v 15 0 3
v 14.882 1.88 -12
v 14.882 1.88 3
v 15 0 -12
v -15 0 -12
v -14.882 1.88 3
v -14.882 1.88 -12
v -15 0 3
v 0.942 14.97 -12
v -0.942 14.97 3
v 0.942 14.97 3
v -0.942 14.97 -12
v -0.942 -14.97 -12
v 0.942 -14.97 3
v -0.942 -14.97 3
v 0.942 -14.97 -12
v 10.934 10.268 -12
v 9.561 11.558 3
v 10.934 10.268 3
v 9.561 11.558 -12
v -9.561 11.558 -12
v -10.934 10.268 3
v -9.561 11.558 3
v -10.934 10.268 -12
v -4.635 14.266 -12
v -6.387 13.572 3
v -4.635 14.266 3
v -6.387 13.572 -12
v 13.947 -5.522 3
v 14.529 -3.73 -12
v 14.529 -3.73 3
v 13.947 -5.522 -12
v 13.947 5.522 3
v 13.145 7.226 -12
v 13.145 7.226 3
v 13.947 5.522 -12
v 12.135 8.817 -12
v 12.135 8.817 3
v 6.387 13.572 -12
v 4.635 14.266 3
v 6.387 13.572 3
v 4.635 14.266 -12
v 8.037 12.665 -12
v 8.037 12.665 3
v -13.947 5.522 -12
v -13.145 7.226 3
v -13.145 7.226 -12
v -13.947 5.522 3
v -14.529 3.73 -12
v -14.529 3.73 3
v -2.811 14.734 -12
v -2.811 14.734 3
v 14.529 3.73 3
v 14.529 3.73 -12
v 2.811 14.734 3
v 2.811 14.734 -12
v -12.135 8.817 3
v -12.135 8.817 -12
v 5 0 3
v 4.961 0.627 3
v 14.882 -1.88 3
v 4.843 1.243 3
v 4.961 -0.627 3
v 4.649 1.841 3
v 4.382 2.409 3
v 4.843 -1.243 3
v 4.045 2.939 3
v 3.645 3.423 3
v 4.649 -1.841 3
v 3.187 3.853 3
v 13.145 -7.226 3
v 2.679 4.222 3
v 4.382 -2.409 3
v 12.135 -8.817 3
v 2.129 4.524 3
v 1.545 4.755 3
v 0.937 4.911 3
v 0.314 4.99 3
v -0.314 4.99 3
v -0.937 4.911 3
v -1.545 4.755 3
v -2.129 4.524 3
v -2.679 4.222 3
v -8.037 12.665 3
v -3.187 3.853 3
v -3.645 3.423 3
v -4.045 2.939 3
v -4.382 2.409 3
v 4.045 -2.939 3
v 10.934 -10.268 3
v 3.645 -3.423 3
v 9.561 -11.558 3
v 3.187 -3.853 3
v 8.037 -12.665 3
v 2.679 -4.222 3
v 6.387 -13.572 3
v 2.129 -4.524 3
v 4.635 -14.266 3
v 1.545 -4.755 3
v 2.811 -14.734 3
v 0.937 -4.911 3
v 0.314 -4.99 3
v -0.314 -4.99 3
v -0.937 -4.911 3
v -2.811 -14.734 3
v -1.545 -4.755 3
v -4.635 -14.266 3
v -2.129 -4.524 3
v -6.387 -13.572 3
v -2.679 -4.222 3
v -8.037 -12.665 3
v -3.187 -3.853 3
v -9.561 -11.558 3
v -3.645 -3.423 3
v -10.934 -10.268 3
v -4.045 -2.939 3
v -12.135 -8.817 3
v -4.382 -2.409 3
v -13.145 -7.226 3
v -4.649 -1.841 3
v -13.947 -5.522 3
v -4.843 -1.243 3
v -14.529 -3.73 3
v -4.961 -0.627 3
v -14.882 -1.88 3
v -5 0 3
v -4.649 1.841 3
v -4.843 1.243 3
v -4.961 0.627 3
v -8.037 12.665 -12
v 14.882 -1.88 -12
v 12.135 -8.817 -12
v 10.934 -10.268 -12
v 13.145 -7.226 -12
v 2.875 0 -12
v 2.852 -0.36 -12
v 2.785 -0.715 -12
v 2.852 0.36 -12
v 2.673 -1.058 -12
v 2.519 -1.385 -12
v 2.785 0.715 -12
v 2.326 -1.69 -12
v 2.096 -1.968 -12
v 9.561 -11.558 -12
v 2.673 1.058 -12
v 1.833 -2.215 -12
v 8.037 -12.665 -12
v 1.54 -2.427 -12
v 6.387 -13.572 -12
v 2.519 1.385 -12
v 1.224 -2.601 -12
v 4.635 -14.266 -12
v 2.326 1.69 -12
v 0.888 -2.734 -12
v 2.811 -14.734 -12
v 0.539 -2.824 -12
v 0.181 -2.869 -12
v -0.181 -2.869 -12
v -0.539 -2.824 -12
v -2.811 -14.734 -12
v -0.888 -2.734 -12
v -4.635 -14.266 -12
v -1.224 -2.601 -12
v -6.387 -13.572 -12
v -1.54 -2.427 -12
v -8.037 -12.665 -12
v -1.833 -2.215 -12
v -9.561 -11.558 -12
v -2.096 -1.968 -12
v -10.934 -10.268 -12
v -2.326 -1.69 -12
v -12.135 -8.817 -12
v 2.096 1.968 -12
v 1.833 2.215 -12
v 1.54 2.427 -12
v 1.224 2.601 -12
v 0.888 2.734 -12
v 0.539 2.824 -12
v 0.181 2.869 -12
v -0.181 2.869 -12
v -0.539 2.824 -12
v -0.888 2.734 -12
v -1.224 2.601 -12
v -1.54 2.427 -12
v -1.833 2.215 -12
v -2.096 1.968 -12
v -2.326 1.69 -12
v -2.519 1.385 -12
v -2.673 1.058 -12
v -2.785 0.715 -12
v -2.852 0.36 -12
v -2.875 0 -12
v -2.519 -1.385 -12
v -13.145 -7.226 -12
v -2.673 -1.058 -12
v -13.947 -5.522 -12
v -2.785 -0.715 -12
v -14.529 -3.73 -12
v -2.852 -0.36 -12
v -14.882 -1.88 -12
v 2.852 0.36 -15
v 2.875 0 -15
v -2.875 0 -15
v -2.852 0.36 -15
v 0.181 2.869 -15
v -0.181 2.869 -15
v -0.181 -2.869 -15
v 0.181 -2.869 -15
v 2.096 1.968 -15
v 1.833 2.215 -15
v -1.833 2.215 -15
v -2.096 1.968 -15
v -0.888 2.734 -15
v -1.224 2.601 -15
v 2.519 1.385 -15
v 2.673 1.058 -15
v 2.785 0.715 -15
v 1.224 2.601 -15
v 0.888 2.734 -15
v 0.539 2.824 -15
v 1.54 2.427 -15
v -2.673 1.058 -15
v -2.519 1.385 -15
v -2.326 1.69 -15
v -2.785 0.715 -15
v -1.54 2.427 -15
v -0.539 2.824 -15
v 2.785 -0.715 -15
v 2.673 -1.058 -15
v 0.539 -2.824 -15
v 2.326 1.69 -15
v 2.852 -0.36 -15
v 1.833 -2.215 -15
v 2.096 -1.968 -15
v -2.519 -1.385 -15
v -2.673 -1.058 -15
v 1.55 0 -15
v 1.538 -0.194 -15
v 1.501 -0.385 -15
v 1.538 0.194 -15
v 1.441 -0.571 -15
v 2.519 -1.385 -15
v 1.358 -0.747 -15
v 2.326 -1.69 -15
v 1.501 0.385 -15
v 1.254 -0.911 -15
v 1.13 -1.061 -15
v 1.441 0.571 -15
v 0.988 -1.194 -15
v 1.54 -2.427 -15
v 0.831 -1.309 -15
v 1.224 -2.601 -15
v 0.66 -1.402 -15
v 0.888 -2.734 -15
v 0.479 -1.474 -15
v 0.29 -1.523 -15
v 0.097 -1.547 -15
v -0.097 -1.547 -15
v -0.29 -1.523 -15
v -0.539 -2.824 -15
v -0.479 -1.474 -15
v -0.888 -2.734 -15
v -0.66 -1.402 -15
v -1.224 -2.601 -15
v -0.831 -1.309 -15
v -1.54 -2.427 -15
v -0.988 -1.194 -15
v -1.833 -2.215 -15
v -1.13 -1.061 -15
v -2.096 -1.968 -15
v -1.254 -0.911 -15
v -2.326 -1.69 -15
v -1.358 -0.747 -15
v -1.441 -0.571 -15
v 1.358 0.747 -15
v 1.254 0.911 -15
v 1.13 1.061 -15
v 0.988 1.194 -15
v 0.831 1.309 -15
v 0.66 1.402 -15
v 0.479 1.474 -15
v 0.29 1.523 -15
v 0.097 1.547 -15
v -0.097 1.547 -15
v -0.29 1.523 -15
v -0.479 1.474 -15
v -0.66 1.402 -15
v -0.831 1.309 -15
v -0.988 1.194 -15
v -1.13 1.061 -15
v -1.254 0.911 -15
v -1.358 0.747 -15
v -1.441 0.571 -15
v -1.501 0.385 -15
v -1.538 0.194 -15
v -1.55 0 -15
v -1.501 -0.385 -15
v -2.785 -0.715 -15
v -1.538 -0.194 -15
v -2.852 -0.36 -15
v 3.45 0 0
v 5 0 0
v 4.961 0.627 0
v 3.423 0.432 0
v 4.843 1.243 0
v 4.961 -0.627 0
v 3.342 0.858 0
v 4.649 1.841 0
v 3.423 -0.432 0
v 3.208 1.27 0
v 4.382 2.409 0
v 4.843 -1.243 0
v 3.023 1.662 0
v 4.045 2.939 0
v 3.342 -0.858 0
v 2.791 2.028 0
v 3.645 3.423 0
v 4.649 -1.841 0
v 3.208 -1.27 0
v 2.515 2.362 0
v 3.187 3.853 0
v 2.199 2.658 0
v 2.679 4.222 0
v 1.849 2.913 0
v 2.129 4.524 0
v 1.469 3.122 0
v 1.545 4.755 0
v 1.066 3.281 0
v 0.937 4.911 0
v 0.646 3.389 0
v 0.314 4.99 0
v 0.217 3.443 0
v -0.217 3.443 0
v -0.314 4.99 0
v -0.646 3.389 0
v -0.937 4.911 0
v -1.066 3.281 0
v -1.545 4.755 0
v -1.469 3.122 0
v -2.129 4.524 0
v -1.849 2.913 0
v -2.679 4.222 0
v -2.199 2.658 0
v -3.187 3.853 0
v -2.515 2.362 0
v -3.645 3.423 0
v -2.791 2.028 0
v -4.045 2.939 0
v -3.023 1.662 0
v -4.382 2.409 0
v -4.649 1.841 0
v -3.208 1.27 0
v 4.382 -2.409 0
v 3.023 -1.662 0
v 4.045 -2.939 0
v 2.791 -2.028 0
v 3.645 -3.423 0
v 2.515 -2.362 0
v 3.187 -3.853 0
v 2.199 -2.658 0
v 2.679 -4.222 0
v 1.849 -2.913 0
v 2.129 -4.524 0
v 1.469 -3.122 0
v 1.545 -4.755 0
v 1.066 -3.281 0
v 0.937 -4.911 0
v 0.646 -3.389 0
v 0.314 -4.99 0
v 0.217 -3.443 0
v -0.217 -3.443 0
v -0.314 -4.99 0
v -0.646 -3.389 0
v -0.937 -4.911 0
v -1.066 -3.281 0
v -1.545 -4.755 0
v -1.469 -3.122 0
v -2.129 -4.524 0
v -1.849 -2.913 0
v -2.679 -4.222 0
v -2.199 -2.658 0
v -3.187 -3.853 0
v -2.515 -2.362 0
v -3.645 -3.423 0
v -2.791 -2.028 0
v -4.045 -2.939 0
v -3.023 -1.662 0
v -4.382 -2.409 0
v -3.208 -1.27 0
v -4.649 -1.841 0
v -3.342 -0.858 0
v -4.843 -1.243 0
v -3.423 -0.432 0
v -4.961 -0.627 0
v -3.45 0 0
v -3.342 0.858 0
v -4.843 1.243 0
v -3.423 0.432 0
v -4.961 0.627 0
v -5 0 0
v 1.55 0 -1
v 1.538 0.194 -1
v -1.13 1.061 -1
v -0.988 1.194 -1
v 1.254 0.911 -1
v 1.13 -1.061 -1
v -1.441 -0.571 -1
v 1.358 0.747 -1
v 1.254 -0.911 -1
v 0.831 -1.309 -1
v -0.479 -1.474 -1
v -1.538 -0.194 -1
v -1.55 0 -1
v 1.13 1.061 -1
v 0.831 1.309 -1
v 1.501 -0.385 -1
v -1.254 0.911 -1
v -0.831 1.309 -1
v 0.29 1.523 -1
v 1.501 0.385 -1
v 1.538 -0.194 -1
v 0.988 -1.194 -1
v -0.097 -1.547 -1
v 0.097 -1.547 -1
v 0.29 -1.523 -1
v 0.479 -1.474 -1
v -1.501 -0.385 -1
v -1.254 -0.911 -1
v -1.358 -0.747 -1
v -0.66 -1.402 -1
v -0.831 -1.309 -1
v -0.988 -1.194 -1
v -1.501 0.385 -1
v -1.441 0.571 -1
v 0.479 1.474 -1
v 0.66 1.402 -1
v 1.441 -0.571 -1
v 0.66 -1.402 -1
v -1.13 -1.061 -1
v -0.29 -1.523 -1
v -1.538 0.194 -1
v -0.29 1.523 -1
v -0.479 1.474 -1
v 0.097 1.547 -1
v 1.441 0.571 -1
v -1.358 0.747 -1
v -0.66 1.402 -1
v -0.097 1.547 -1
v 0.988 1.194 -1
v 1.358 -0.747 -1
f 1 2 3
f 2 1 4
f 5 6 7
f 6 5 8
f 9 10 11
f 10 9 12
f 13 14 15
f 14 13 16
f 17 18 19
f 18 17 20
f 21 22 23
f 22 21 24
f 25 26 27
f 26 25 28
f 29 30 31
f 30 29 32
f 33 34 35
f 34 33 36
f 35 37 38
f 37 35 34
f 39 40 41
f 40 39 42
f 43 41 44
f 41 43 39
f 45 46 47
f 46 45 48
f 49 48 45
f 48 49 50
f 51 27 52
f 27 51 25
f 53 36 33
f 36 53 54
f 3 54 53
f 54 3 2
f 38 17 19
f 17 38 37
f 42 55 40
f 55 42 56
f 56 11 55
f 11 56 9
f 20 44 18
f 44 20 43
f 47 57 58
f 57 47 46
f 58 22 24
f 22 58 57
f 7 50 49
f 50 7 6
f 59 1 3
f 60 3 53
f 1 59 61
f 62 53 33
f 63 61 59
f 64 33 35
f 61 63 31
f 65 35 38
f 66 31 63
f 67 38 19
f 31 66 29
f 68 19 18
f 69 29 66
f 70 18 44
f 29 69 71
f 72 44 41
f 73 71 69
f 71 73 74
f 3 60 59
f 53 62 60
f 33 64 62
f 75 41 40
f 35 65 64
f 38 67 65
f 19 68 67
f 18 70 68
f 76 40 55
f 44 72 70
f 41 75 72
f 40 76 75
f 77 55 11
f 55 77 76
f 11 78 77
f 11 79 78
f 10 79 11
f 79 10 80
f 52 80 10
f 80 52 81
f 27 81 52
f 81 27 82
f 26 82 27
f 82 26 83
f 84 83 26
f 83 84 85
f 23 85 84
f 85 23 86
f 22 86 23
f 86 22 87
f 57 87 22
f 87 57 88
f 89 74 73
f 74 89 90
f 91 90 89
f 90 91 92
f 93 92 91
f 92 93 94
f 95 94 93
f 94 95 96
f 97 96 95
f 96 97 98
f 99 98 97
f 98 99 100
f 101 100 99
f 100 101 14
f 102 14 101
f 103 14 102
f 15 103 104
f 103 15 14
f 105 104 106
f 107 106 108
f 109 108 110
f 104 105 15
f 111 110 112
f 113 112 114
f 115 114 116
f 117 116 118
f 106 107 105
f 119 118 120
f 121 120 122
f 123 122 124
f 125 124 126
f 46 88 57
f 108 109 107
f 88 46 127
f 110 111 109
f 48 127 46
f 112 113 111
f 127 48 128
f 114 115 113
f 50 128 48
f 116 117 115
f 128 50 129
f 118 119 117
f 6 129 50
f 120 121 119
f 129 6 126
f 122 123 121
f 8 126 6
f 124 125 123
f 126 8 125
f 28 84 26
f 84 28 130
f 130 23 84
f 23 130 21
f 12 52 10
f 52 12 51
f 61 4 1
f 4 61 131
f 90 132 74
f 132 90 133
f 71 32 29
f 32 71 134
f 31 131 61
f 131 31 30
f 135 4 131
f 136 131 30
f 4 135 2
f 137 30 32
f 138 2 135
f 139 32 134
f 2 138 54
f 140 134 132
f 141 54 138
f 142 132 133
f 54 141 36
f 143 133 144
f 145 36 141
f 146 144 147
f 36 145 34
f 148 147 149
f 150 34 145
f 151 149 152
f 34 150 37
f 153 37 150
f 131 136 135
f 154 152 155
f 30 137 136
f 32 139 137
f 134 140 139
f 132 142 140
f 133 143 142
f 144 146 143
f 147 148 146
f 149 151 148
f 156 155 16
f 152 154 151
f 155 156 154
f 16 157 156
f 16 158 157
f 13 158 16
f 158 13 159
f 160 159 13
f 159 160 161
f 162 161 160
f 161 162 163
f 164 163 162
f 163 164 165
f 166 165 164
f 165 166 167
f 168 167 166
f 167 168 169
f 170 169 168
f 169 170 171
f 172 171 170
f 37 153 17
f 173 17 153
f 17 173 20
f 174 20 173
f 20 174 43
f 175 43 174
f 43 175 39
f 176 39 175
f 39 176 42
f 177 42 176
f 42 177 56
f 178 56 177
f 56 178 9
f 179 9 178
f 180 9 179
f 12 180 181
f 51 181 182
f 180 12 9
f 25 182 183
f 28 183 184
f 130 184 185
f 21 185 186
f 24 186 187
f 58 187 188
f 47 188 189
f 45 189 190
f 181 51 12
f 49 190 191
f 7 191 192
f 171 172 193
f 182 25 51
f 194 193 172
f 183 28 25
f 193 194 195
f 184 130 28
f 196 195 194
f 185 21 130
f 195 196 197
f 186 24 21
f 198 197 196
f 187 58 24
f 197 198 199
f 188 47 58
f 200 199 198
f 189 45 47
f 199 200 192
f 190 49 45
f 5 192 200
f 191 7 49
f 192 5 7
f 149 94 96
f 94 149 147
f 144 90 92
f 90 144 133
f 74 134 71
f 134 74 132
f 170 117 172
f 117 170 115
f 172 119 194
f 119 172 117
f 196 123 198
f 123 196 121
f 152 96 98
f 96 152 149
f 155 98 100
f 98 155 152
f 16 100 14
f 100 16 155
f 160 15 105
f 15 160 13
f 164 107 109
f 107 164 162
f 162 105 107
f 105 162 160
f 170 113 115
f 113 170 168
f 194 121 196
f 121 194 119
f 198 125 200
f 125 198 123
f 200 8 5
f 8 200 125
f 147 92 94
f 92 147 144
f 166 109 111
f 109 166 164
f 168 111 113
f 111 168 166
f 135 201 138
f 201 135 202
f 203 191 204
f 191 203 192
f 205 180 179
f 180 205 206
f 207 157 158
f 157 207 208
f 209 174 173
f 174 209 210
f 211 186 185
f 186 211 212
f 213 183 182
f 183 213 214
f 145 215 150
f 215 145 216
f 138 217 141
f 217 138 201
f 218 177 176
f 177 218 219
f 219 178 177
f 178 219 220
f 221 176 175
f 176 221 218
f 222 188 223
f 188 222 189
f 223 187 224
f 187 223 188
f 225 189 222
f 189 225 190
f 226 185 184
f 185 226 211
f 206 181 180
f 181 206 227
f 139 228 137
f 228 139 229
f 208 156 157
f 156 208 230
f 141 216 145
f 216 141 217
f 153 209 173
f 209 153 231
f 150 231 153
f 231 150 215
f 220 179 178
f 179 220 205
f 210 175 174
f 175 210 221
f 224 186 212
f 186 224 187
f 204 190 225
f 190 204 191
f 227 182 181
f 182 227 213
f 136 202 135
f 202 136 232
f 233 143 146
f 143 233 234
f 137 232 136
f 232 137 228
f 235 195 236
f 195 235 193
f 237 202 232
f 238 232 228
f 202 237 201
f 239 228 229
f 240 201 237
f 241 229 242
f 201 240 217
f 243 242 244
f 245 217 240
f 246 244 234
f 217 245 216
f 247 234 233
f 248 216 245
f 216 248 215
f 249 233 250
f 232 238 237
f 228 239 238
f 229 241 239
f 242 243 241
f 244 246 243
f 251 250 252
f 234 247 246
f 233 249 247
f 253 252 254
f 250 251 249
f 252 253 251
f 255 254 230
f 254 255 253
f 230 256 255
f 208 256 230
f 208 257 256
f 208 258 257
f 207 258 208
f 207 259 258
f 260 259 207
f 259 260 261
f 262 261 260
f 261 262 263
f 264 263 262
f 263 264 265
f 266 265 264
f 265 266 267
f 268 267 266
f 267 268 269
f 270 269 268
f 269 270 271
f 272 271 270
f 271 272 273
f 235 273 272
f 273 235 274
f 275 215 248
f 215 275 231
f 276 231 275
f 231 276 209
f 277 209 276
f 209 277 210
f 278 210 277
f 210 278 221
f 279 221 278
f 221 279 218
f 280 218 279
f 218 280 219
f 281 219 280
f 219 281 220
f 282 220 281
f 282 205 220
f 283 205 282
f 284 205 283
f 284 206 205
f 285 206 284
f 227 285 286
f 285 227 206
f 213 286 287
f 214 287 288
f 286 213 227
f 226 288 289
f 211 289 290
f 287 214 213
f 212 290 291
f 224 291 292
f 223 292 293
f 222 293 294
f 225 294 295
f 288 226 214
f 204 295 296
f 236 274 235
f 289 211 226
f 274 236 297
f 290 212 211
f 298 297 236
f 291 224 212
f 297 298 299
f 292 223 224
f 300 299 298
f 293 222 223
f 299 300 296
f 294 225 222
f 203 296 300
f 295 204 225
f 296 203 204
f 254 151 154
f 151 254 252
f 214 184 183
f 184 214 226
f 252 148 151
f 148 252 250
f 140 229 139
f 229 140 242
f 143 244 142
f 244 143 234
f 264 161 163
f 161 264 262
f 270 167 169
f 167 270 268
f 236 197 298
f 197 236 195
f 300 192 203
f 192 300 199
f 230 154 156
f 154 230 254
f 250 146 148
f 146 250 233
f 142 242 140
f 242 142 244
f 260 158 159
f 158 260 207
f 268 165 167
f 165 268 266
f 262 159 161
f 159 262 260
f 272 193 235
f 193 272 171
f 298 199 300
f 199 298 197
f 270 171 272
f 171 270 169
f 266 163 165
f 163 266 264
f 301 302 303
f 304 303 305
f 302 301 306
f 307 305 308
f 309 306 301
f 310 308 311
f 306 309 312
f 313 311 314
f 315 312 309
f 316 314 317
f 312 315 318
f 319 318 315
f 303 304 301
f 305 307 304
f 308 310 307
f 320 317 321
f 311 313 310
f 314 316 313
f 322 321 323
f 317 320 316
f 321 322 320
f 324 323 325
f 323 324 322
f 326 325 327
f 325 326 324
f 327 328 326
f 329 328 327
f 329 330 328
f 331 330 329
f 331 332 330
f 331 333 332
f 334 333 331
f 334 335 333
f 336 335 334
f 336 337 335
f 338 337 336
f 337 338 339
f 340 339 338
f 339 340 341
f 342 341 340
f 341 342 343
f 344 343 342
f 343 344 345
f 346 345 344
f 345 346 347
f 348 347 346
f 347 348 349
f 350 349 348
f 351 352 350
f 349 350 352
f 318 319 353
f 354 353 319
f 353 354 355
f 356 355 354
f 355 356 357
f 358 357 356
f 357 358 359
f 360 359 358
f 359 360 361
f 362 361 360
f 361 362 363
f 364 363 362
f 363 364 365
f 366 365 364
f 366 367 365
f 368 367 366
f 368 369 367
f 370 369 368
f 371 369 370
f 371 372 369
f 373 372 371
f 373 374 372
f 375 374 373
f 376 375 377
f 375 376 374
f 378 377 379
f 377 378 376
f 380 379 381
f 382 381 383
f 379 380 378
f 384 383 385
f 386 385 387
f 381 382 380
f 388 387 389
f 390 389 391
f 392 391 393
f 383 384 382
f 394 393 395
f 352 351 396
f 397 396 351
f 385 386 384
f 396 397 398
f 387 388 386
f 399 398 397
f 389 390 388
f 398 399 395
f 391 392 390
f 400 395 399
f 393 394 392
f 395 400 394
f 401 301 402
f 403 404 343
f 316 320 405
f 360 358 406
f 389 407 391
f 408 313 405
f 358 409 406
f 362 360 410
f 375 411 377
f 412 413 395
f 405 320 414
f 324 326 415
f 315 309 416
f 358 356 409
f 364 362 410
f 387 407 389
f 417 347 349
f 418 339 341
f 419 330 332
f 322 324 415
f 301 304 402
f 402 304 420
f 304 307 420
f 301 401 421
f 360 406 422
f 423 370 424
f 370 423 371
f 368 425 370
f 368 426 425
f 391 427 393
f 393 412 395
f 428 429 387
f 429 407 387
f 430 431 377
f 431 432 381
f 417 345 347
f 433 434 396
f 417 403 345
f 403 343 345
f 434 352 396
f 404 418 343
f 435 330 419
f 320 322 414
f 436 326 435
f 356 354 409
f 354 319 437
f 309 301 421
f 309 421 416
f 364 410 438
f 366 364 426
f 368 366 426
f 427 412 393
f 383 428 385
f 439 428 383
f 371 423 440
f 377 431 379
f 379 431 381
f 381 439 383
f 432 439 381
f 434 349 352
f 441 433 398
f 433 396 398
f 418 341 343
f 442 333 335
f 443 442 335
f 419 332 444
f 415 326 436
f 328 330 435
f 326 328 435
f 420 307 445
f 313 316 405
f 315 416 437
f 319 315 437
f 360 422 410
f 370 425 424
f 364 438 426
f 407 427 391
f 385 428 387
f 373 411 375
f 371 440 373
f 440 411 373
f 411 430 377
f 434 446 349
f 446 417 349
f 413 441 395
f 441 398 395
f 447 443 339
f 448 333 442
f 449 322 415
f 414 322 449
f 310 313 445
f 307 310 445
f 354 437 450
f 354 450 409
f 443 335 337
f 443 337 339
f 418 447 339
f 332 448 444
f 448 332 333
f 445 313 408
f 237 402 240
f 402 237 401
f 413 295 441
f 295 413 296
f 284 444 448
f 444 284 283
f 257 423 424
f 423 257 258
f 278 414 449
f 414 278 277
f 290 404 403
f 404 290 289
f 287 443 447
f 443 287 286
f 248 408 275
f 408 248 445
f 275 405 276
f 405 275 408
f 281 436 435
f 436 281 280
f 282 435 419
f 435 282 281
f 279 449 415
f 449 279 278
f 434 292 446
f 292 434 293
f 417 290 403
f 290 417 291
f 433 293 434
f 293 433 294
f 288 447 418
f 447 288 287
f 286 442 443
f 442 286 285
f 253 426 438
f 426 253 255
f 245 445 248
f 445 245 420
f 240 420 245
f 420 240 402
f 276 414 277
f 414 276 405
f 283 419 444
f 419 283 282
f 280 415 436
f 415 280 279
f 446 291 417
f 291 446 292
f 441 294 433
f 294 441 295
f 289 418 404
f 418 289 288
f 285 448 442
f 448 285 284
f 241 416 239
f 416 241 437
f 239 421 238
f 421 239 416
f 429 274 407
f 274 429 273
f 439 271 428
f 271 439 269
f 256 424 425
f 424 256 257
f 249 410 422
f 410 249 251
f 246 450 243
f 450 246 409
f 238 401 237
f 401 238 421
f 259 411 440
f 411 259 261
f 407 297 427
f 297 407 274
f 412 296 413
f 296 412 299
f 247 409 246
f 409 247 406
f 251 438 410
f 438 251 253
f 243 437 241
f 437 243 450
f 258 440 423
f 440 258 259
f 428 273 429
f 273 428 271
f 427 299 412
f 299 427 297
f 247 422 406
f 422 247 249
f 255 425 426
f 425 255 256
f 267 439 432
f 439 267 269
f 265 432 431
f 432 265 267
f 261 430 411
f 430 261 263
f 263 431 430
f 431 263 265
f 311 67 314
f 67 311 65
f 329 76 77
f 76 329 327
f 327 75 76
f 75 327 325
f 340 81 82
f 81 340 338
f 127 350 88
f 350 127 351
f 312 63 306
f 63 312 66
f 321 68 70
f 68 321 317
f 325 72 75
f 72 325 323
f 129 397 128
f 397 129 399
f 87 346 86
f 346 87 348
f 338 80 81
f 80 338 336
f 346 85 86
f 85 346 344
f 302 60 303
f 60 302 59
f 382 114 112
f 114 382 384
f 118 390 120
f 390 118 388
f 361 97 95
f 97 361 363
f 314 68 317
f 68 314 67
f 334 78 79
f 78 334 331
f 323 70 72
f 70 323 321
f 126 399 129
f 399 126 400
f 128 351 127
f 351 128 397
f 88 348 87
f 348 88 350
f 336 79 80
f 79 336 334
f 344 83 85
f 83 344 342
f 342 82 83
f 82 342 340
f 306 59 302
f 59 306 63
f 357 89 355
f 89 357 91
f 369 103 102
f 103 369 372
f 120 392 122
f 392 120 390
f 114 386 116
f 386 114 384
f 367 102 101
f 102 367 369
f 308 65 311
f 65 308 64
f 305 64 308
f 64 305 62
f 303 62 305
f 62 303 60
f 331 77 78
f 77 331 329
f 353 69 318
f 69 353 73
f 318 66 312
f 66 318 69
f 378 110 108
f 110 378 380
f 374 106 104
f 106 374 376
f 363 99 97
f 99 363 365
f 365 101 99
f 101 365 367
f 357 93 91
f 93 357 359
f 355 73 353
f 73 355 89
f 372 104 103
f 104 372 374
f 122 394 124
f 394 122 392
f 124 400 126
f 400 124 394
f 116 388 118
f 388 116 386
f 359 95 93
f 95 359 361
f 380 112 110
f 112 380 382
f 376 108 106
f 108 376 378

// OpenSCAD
$fn = 50;

difference() {
	union() {
		translate(v = [0, 0, -12.0]) {
			cylinder(h = 15, r = 15.0);
		}
		#translate(v = [0, 0, -15.0]) {
			cylinder(h = 15, r = 2.875);
		}
	}
	union() {
		translate(v = [0, 0, 0]) {
			rotate(a = [0, 0, 0]) {
				difference() {
					union() {
						translate(v = [0, 0, -15.0]) {
							cylinder(h = 15, r = 1.25);
						}
						translate(v = [0, 0, -1.0]) {
							cylinder(h = 1.0, r1 = 1.55, r2 = 3.45);
						}
						translate(v = [0, 0, -15.0]) {
							cylinder(h = 15, r = 1.55);
						}
						translate(v = [0, 0, -15.0]) {
							cylinder(h = 15, r = 1.25);
						}
					}
					union();
				}
			}
		}
		#cylinder(h = 3, r = 5.0);
	}
}
